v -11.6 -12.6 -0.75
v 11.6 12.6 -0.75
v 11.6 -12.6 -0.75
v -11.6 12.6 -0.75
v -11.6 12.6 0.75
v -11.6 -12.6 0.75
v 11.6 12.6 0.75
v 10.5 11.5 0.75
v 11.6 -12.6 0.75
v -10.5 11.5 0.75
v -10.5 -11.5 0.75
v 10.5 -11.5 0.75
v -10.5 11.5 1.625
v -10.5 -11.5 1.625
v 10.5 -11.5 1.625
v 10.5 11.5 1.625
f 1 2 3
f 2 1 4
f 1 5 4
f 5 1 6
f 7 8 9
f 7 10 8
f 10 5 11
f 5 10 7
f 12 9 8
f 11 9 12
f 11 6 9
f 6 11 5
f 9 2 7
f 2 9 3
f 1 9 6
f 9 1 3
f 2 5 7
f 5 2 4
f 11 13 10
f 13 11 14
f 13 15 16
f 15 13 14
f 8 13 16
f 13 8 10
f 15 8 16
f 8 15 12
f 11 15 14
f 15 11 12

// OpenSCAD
$fa = 0.2;
$fs = 0.2;
rotate([0,-90,0]){
cube ([1.5, 25.2, 23.2], center = true);   
translate([+1,0,0])
cube ([1.25, 23, 21], center = true);  
}
